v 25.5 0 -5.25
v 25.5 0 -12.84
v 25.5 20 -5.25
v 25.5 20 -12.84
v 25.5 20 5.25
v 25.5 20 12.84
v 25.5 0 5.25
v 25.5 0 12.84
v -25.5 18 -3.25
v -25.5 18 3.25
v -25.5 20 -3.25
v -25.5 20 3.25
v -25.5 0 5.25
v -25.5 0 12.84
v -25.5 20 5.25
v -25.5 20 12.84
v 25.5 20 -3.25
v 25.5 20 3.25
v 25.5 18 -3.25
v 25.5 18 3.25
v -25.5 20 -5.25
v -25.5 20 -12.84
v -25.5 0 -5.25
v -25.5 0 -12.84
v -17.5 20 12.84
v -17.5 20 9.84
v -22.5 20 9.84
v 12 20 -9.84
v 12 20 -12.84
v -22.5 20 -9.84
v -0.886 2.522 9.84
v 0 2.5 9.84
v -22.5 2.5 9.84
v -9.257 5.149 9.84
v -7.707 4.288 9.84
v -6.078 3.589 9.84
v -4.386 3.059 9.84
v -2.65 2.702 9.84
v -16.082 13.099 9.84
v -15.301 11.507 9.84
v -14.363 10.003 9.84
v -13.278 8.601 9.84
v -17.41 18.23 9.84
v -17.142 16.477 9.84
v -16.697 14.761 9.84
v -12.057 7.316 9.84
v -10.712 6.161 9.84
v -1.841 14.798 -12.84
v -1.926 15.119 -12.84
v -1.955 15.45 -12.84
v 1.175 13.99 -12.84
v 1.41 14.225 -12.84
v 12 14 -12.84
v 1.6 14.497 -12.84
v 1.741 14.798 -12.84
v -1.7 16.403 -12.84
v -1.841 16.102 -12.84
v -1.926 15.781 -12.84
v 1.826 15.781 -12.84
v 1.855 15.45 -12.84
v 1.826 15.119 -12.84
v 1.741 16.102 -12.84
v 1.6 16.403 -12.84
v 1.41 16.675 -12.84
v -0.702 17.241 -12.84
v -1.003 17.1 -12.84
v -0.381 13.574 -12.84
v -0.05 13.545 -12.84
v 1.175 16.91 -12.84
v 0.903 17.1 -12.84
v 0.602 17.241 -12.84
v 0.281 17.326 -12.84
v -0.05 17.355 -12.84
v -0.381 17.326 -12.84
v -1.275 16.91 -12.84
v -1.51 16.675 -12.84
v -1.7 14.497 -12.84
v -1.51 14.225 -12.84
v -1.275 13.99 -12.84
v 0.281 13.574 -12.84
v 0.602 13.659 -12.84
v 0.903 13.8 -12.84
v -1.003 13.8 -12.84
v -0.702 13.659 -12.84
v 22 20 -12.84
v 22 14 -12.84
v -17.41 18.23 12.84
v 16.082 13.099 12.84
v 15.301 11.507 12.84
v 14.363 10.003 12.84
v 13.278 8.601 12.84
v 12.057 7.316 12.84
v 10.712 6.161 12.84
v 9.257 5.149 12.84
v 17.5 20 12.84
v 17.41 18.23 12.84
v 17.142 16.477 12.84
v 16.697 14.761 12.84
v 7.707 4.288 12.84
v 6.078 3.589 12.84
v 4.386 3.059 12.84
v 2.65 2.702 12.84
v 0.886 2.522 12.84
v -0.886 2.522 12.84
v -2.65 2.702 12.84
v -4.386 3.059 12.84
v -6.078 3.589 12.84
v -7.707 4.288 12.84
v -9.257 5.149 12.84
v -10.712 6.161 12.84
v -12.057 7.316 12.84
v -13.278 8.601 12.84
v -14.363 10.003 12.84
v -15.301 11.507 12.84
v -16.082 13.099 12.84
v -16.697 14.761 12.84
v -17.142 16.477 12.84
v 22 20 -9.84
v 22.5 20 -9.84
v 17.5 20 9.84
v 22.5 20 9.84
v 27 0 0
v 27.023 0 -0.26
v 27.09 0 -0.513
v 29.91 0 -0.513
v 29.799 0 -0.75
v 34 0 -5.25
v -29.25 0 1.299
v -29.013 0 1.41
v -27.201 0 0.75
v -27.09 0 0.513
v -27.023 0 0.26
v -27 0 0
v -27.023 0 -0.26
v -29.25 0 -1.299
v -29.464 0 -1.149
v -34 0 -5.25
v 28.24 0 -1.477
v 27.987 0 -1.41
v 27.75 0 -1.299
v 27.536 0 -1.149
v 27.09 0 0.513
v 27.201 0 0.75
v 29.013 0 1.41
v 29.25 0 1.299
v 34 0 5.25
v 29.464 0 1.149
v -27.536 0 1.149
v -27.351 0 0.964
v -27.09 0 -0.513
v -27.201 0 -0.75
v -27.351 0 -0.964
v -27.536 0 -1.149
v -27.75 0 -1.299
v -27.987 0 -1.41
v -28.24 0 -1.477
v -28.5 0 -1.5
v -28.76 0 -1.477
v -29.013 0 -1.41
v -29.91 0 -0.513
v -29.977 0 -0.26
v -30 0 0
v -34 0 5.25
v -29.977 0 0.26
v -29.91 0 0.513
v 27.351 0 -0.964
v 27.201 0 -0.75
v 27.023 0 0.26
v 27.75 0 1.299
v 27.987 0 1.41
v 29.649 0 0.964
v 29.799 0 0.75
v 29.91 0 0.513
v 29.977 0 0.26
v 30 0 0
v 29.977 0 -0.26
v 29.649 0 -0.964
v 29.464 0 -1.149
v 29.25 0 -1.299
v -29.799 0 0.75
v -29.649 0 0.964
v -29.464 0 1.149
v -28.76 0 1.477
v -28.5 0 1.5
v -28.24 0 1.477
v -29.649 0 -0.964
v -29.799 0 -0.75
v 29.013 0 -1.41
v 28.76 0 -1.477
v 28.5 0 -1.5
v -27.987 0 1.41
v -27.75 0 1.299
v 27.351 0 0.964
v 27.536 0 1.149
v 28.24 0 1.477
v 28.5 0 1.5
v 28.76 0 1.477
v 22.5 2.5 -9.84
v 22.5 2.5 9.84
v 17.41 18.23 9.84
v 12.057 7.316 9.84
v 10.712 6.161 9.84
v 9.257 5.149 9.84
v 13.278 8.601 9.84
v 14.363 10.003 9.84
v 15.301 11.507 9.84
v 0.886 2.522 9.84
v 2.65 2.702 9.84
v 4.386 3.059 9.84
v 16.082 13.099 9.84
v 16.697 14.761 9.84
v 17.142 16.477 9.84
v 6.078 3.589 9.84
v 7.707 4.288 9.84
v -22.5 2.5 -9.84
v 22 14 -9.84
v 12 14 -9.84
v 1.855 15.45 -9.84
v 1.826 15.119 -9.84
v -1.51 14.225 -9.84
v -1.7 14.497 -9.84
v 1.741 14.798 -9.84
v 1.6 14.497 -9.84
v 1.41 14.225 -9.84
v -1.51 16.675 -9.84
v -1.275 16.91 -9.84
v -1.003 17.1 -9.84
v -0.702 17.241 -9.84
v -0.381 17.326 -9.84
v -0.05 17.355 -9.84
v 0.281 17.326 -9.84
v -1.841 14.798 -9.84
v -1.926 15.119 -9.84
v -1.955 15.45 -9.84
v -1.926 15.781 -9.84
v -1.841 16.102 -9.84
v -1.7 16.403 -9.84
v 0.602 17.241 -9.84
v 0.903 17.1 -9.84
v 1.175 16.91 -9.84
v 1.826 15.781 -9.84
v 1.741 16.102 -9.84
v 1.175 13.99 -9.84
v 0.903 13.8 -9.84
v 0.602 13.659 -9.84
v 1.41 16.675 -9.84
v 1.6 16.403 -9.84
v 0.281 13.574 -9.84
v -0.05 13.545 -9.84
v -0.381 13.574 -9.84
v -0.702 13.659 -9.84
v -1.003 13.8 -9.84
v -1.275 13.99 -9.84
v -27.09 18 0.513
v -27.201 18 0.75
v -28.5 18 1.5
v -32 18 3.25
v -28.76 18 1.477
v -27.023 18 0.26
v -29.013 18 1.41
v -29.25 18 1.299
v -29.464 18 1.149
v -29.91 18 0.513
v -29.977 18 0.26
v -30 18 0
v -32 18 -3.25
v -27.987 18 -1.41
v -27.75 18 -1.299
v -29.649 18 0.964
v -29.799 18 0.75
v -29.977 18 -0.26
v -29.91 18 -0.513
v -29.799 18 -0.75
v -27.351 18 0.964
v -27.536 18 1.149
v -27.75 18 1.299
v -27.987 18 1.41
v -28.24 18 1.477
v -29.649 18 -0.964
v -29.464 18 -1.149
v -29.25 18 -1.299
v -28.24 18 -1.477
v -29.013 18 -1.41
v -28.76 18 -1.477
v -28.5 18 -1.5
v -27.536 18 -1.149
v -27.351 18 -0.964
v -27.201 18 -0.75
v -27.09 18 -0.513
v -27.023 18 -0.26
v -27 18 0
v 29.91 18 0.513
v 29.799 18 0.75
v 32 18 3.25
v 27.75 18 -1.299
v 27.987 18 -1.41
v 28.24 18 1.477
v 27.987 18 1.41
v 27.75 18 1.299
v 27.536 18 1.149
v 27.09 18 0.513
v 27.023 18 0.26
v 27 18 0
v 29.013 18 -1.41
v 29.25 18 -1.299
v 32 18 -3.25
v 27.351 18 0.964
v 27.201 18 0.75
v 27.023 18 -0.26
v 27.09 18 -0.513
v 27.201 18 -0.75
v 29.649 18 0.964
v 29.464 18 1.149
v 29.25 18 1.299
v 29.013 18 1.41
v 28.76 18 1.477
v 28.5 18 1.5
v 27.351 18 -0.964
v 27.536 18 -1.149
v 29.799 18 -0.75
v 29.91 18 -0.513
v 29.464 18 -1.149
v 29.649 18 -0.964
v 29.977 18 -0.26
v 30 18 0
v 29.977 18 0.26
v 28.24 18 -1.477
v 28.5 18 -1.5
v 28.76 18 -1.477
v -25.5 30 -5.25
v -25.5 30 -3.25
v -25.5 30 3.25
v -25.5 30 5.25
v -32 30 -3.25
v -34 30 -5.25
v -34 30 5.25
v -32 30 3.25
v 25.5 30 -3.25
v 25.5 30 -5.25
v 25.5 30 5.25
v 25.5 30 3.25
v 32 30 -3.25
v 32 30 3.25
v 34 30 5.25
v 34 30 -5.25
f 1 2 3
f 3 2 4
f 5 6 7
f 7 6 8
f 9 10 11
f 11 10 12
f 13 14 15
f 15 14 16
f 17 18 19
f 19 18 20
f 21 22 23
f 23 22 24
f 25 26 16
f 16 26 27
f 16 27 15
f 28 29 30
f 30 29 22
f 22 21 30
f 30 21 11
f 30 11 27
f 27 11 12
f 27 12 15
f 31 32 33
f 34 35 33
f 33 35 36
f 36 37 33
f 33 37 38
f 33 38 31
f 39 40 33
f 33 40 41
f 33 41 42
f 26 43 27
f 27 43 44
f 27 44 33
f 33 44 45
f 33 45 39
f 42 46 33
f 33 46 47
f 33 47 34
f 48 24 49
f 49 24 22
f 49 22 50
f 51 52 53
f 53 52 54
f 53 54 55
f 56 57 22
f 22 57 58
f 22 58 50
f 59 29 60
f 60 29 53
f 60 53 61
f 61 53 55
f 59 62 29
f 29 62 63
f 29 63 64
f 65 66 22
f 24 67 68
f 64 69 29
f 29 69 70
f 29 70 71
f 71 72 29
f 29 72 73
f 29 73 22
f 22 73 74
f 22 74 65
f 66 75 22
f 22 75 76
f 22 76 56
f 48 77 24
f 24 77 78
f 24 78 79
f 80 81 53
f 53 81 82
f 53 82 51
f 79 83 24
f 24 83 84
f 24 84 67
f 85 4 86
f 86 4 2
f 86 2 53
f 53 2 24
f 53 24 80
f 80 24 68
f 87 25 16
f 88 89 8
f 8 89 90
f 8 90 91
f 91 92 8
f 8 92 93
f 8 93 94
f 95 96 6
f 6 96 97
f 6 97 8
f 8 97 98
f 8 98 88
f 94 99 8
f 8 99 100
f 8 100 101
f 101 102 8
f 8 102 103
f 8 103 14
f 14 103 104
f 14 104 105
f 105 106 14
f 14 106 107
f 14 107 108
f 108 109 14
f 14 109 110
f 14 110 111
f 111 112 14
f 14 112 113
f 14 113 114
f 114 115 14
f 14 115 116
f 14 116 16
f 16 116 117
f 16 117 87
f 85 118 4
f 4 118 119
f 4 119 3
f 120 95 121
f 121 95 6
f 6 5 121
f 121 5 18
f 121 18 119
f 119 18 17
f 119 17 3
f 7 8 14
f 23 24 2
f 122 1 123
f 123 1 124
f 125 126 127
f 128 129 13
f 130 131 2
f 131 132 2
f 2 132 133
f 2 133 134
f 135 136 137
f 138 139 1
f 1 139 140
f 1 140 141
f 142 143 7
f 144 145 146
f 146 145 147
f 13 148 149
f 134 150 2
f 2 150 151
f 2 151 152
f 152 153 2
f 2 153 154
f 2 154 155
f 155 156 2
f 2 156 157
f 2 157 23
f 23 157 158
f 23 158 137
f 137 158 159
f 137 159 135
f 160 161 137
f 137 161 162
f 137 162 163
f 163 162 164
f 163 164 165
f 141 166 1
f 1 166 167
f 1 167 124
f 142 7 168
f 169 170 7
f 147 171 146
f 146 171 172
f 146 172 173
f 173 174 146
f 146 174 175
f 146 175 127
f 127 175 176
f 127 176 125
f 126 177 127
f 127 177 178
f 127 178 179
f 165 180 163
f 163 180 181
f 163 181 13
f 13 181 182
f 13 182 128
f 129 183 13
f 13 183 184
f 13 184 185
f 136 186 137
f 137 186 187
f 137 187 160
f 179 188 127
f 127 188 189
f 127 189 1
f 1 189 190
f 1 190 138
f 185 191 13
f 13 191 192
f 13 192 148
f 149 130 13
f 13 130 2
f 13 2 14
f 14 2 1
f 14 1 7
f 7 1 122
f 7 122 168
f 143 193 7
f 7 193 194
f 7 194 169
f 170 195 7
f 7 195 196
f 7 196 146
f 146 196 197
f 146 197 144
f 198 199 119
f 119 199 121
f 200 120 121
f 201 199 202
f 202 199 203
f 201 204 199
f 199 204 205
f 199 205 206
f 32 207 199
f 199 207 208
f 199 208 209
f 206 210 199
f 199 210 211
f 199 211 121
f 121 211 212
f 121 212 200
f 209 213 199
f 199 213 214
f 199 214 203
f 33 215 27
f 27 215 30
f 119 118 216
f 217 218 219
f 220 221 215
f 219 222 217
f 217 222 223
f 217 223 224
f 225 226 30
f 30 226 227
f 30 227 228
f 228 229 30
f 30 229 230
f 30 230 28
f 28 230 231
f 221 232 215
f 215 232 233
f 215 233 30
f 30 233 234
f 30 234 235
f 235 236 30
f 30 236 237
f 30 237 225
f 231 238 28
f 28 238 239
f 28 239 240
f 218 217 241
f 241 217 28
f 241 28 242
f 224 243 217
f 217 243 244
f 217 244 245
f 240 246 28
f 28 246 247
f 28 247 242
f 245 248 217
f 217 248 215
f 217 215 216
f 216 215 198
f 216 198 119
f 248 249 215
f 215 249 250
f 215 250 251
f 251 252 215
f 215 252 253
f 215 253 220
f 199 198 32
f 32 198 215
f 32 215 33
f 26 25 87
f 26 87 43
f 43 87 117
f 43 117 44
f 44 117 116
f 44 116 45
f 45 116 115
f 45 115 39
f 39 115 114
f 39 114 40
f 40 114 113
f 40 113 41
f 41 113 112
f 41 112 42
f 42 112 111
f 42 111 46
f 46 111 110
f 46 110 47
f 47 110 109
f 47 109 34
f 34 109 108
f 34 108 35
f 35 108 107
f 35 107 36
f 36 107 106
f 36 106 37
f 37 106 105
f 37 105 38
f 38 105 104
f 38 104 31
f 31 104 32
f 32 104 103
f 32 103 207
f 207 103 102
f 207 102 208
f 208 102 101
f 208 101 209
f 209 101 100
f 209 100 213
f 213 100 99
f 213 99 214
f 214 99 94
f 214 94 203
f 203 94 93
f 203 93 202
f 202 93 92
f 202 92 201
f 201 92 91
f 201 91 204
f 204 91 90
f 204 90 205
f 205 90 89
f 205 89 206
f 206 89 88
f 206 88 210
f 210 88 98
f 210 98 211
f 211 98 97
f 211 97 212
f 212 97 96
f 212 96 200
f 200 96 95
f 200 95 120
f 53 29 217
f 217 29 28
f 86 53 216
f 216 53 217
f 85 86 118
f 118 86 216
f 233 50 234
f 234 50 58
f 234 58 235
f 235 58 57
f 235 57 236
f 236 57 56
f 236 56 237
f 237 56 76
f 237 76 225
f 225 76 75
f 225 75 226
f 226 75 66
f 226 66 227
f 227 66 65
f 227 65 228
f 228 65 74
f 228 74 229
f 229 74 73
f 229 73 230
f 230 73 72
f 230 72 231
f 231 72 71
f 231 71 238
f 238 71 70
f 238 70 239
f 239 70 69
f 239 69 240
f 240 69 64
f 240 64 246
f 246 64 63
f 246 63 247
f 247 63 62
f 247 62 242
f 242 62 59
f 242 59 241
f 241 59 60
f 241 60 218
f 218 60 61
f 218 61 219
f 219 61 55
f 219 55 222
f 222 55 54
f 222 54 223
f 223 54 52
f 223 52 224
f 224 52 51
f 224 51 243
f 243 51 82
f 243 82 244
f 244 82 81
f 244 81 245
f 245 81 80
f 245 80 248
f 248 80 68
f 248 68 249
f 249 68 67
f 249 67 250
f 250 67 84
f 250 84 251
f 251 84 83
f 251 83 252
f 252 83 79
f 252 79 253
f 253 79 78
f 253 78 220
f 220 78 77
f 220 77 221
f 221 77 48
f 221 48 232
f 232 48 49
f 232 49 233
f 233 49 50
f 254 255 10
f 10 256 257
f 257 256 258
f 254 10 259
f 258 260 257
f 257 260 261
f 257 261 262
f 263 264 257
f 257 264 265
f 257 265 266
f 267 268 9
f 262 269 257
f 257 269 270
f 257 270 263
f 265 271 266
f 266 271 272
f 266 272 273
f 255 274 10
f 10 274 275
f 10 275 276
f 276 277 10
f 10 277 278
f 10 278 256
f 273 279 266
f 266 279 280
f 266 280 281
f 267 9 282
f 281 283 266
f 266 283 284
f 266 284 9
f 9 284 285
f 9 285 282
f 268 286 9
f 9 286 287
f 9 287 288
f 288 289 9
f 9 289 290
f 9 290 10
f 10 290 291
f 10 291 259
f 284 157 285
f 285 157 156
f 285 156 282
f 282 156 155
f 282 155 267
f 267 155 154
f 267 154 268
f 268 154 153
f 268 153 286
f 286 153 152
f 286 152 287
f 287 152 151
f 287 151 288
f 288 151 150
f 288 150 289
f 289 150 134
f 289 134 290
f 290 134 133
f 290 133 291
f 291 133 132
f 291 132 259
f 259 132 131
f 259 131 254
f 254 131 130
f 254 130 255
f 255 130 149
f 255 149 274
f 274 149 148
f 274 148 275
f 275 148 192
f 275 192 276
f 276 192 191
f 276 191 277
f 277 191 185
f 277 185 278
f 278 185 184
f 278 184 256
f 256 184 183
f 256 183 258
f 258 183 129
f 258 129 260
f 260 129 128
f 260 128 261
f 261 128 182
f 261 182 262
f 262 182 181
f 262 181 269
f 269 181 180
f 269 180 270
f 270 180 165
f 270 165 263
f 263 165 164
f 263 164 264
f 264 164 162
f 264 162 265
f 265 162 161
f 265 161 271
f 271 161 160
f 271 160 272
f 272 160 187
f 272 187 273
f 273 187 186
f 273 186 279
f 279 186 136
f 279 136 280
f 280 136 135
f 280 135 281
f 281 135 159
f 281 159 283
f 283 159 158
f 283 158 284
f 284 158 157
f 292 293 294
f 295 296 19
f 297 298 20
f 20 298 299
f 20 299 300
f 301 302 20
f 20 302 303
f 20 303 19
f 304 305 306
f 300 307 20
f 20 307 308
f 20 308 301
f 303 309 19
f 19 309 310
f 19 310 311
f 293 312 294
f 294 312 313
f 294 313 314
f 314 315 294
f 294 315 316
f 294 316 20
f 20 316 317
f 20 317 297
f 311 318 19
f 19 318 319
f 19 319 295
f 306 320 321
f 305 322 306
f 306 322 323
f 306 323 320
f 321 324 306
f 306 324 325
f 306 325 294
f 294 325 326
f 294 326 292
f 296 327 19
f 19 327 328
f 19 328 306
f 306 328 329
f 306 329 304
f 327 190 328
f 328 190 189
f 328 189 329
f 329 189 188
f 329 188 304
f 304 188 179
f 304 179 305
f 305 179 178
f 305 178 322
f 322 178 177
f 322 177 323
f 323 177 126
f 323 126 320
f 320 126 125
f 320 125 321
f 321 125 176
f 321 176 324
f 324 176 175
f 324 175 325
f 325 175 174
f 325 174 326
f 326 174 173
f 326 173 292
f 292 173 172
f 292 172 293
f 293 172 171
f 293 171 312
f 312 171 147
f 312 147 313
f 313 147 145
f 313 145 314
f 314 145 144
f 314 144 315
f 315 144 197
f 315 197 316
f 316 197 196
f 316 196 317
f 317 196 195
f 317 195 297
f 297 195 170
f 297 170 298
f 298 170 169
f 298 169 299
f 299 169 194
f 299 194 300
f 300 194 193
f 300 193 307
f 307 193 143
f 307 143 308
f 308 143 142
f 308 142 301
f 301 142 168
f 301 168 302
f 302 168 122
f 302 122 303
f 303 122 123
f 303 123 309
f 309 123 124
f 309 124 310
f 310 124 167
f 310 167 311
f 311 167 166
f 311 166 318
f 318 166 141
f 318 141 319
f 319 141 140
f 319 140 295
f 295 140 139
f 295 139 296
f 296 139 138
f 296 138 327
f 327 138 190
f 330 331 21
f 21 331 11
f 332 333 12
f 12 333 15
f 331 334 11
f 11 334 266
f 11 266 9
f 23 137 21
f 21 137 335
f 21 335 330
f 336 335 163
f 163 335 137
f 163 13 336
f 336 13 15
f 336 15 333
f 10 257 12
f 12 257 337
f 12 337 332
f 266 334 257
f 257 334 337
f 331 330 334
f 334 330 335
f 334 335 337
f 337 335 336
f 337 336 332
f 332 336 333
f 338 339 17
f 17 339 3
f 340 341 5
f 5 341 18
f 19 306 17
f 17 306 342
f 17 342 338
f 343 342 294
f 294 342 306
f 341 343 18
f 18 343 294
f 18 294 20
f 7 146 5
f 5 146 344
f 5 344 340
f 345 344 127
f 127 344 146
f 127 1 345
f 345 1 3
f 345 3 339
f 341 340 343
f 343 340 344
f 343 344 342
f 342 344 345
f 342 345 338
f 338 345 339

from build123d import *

# Parameters (mm, degrees)
SKETCH1_W           = 51
SKETCH1_H           = 25.68
BOSS_EXTRUDE1_DEPTH = 20
SKETCH2_W           = 45
SKETCH2_H           = 19.68
CUT_EXTRUDE1_DEPTH  = 17.5
CUT_EXTRUDE5_DEPTH  = 3
SKETCH10_R          = 1.905435321
SKETCH10_W          = 10
SKETCH10_H          = 6
CUT_EXTRUDE6_DEPTH  = 3
SKETCH11_W          = 6.5
SKETCH11_H          = 6.5
SKETCH11_R          = 1.5
BOSS_EXTRUDE4_DEPTH = 18
BOSS_EXTRUDE5_DEPTH = 30


with BuildPart() as part:
    # Sketch1 → Boss-Extrude1 (new body)
    with BuildSketch(Plane(origin=(0, 0, 0), x_dir=(1, 0, 0), z_dir=(0, 1, 0))):
        Rectangle(SKETCH1_W, SKETCH1_H)
    extrude(amount=BOSS_EXTRUDE1_DEPTH)

    # Sketch2 → Cut-Extrude1 (cut)
    with BuildSketch(Plane(origin=(0, 20, 0), x_dir=(1, 0, 0), z_dir=(0, 1, 0))):
        Rectangle(SKETCH2_W, SKETCH2_H)
    extrude(amount=-CUT_EXTRUDE1_DEPTH, mode=Mode.SUBTRACT)

    # Sketch9 → Cut-Extrude5 (cut)
    with BuildSketch(Plane.XY.offset(12.84)):
        with BuildLine():
            Line((-17.5, 20), (17.5, 20))
            ThreePointArc((17.5, 20), (0, 2.5), (-17.5, 20))
        make_face()
    extrude(amount=-CUT_EXTRUDE5_DEPTH, mode=Mode.SUBTRACT)

    # Sketch10 → Cut-Extrude6 (cut)
    with BuildSketch(Plane(origin=(0, 0, -12.84), x_dir=(-1, 0, 0), z_dir=(0, 0, -1))):
        with Locations((0.05, 15.45)):
            Circle(SKETCH10_R)
        with Locations((-17, 17)):
            Rectangle(SKETCH10_W, SKETCH10_H)
    extrude(amount=-CUT_EXTRUDE6_DEPTH, mode=Mode.SUBTRACT)

    # Sketch11 → Boss-Extrude4 (add)
    with BuildSketch(Plane.XZ):
        with Locations((-28.75, 0)):
            Rectangle(SKETCH11_W, SKETCH11_H)
        with Locations((-28.5, 0)):
            Circle(SKETCH11_R, mode=Mode.SUBTRACT)
        with Locations((28.75, 0)):
            Rectangle(SKETCH11_W, SKETCH11_H)
        with Locations((28.5, 0)):
            Circle(SKETCH11_R, mode=Mode.SUBTRACT)
    extrude(amount=-BOSS_EXTRUDE4_DEPTH)

    # Sketch12 → Boss-Extrude5 (add)
    with BuildSketch(Plane.XZ):
        Polygon((-25.5, -3.25), (-25.5, -5.25), (-34, -5.25), (-34, 5.25), (-25.5, 5.25), (-25.5, 3.25), (-32, 3.25), (-32, -3.25), align=None)
        Polygon((25.5, 3.25), (32, 3.25), (32, -3.25), (25.5, -3.25), (25.5, -5.25), (34, -5.25), (34, 5.25), (25.5, 5.25), align=None)
    extrude(amount=-BOSS_EXTRUDE5_DEPTH)


solid = part.part
